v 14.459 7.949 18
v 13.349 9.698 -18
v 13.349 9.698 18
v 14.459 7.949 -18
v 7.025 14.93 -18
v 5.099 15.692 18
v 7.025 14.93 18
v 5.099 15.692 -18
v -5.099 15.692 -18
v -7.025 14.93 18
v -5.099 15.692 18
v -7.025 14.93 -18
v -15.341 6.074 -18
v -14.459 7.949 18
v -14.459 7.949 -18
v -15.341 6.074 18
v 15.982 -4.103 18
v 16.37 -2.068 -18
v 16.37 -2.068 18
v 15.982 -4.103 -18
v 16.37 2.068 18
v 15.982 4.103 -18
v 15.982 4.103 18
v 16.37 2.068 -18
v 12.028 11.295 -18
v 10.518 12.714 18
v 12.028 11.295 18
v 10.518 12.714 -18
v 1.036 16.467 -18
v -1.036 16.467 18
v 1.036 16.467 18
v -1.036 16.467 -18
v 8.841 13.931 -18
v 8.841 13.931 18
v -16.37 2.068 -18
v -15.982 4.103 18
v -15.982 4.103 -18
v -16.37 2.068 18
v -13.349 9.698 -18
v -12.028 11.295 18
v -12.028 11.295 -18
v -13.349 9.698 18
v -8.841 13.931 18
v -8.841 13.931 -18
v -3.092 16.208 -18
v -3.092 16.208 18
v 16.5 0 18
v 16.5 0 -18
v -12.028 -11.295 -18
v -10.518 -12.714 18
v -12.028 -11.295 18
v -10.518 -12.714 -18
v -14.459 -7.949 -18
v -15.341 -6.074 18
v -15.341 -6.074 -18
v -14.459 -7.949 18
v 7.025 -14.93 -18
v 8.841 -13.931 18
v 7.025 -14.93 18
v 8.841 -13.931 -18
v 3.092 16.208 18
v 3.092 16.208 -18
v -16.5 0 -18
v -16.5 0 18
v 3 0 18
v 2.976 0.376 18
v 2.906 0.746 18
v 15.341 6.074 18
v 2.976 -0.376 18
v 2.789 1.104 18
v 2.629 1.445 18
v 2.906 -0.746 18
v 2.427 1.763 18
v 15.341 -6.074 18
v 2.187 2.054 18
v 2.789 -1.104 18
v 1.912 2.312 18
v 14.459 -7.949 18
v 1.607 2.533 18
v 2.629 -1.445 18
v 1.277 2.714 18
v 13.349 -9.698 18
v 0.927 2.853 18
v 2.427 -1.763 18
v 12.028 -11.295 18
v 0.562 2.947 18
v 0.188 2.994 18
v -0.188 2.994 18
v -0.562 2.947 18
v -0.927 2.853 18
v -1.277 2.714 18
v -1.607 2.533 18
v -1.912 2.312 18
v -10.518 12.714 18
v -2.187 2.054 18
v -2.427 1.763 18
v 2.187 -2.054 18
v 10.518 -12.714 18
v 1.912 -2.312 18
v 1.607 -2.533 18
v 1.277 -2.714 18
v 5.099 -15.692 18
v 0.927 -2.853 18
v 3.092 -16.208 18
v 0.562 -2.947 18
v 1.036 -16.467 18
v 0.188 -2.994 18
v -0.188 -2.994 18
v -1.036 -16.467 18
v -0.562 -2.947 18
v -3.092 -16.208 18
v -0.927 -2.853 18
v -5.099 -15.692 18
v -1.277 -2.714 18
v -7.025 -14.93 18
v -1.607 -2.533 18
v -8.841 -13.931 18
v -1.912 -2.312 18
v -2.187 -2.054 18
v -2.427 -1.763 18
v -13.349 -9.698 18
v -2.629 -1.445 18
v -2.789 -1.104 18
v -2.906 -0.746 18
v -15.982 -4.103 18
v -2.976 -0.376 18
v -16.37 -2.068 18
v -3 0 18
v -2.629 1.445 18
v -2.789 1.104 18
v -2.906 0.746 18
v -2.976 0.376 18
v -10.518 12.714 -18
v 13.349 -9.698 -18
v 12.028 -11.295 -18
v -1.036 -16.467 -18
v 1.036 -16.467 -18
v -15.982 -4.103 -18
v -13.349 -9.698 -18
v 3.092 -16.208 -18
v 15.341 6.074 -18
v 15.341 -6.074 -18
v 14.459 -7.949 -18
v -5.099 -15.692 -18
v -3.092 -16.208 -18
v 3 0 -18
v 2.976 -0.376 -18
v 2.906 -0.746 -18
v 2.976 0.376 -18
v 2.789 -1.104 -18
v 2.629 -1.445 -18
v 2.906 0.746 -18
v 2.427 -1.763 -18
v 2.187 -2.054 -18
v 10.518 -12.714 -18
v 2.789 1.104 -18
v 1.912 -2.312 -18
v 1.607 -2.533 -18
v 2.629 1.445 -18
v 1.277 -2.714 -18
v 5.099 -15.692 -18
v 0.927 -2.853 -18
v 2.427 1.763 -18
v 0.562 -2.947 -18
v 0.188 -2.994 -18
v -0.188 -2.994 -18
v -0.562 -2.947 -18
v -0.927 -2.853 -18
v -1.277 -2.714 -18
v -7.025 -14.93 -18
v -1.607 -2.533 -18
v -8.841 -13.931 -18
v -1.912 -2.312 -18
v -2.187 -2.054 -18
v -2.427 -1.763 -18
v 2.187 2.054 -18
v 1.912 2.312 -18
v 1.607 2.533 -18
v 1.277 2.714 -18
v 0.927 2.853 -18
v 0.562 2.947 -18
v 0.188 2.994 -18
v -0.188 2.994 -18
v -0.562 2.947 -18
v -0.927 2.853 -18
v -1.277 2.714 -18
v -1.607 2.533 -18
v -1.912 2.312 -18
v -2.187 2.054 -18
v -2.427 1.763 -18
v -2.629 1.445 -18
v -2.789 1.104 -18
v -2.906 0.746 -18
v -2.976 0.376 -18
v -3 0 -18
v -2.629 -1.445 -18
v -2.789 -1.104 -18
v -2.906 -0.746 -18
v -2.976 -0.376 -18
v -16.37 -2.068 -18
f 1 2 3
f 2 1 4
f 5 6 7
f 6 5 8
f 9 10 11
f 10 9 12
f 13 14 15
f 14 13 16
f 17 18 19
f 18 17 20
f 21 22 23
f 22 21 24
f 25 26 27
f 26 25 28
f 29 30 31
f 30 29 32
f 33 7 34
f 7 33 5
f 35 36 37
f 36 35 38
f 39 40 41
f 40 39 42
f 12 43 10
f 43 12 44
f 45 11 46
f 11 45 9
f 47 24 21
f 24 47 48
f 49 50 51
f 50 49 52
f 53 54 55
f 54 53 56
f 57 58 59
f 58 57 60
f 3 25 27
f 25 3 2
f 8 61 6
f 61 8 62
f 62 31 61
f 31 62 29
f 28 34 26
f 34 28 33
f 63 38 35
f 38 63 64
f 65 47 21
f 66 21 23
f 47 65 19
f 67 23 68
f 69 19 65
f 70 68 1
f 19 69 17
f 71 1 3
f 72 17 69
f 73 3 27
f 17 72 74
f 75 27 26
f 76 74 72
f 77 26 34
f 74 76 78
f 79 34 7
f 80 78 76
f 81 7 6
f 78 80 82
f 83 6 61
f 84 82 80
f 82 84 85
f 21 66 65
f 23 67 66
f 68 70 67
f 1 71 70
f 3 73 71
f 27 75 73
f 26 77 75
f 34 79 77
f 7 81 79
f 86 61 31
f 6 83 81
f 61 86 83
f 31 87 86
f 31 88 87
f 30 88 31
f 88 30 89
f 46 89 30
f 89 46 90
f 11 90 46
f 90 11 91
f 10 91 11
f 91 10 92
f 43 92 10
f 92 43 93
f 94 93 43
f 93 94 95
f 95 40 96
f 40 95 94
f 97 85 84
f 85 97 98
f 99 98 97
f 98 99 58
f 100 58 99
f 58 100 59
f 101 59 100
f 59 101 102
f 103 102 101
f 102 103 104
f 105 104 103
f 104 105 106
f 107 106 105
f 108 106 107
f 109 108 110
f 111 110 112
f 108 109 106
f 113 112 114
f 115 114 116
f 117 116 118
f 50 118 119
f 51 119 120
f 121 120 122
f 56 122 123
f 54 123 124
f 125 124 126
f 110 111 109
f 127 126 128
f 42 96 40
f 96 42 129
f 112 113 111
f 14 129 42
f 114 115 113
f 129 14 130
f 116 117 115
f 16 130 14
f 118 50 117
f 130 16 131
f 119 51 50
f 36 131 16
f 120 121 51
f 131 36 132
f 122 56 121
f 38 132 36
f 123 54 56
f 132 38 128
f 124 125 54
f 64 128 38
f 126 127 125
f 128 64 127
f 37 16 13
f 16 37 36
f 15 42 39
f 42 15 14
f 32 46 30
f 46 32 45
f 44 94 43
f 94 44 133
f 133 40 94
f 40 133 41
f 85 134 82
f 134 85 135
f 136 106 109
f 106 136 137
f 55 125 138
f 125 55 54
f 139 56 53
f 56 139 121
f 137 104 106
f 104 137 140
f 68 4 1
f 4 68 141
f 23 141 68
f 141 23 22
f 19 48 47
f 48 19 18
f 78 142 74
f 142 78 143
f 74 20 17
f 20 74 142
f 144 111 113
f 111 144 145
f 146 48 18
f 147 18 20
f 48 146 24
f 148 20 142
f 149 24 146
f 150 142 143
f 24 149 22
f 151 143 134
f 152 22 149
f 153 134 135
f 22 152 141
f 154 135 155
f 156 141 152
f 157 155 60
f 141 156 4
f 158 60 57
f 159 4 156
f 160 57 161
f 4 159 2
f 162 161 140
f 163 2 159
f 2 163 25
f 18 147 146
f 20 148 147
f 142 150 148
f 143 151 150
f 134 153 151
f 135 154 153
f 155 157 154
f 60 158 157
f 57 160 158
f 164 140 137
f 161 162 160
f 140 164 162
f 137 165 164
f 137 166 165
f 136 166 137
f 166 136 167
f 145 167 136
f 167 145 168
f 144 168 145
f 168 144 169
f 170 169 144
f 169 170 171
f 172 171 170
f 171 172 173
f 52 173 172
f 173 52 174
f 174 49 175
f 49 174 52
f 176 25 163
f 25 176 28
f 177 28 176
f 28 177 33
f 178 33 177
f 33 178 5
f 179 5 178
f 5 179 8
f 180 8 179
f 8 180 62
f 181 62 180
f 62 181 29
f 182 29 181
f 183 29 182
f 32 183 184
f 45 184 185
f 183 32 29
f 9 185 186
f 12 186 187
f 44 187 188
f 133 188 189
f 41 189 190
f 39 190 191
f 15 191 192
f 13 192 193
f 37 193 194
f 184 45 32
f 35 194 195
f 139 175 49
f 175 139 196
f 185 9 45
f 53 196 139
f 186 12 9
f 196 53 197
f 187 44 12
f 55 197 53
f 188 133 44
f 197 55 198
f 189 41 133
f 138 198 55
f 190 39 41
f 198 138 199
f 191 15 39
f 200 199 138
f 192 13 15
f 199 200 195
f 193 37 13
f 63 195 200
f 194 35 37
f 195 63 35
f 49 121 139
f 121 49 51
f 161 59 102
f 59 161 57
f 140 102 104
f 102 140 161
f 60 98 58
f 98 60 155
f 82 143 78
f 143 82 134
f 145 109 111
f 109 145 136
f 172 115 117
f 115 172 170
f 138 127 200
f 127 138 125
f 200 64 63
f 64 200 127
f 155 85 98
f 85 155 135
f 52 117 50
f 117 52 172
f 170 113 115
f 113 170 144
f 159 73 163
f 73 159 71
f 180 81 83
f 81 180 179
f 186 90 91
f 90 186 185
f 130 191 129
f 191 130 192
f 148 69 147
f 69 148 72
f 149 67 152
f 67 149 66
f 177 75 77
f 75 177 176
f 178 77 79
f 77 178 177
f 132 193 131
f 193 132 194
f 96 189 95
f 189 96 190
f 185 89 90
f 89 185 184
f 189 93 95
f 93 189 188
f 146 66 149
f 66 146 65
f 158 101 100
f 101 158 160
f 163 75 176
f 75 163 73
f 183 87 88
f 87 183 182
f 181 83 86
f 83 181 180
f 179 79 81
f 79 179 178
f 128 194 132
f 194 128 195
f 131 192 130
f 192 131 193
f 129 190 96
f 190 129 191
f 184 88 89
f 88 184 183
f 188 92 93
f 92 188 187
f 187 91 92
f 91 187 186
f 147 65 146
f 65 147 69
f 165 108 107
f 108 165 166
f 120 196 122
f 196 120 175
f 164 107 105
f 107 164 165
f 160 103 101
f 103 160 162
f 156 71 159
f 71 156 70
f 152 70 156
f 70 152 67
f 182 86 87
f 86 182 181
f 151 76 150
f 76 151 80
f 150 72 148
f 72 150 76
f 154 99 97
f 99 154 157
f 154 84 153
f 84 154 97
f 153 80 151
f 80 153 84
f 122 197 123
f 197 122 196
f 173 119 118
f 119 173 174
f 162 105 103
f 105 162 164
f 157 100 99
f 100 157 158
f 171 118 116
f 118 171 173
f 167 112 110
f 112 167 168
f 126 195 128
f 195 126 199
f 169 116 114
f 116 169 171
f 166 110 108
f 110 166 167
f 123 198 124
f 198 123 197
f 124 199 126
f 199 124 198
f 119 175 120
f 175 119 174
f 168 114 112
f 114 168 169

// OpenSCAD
$fn = 50;


difference() {
	union() {
		translate(v = [0, 0, -18.0000000000]) {
			cylinder(h = 36, r = 16.5000000000);
		}
	}
	union() {
		translate(v = [0, 0, -100.0000000000]) {
			cylinder(h = 200, r = 3);
		}
	}
}
